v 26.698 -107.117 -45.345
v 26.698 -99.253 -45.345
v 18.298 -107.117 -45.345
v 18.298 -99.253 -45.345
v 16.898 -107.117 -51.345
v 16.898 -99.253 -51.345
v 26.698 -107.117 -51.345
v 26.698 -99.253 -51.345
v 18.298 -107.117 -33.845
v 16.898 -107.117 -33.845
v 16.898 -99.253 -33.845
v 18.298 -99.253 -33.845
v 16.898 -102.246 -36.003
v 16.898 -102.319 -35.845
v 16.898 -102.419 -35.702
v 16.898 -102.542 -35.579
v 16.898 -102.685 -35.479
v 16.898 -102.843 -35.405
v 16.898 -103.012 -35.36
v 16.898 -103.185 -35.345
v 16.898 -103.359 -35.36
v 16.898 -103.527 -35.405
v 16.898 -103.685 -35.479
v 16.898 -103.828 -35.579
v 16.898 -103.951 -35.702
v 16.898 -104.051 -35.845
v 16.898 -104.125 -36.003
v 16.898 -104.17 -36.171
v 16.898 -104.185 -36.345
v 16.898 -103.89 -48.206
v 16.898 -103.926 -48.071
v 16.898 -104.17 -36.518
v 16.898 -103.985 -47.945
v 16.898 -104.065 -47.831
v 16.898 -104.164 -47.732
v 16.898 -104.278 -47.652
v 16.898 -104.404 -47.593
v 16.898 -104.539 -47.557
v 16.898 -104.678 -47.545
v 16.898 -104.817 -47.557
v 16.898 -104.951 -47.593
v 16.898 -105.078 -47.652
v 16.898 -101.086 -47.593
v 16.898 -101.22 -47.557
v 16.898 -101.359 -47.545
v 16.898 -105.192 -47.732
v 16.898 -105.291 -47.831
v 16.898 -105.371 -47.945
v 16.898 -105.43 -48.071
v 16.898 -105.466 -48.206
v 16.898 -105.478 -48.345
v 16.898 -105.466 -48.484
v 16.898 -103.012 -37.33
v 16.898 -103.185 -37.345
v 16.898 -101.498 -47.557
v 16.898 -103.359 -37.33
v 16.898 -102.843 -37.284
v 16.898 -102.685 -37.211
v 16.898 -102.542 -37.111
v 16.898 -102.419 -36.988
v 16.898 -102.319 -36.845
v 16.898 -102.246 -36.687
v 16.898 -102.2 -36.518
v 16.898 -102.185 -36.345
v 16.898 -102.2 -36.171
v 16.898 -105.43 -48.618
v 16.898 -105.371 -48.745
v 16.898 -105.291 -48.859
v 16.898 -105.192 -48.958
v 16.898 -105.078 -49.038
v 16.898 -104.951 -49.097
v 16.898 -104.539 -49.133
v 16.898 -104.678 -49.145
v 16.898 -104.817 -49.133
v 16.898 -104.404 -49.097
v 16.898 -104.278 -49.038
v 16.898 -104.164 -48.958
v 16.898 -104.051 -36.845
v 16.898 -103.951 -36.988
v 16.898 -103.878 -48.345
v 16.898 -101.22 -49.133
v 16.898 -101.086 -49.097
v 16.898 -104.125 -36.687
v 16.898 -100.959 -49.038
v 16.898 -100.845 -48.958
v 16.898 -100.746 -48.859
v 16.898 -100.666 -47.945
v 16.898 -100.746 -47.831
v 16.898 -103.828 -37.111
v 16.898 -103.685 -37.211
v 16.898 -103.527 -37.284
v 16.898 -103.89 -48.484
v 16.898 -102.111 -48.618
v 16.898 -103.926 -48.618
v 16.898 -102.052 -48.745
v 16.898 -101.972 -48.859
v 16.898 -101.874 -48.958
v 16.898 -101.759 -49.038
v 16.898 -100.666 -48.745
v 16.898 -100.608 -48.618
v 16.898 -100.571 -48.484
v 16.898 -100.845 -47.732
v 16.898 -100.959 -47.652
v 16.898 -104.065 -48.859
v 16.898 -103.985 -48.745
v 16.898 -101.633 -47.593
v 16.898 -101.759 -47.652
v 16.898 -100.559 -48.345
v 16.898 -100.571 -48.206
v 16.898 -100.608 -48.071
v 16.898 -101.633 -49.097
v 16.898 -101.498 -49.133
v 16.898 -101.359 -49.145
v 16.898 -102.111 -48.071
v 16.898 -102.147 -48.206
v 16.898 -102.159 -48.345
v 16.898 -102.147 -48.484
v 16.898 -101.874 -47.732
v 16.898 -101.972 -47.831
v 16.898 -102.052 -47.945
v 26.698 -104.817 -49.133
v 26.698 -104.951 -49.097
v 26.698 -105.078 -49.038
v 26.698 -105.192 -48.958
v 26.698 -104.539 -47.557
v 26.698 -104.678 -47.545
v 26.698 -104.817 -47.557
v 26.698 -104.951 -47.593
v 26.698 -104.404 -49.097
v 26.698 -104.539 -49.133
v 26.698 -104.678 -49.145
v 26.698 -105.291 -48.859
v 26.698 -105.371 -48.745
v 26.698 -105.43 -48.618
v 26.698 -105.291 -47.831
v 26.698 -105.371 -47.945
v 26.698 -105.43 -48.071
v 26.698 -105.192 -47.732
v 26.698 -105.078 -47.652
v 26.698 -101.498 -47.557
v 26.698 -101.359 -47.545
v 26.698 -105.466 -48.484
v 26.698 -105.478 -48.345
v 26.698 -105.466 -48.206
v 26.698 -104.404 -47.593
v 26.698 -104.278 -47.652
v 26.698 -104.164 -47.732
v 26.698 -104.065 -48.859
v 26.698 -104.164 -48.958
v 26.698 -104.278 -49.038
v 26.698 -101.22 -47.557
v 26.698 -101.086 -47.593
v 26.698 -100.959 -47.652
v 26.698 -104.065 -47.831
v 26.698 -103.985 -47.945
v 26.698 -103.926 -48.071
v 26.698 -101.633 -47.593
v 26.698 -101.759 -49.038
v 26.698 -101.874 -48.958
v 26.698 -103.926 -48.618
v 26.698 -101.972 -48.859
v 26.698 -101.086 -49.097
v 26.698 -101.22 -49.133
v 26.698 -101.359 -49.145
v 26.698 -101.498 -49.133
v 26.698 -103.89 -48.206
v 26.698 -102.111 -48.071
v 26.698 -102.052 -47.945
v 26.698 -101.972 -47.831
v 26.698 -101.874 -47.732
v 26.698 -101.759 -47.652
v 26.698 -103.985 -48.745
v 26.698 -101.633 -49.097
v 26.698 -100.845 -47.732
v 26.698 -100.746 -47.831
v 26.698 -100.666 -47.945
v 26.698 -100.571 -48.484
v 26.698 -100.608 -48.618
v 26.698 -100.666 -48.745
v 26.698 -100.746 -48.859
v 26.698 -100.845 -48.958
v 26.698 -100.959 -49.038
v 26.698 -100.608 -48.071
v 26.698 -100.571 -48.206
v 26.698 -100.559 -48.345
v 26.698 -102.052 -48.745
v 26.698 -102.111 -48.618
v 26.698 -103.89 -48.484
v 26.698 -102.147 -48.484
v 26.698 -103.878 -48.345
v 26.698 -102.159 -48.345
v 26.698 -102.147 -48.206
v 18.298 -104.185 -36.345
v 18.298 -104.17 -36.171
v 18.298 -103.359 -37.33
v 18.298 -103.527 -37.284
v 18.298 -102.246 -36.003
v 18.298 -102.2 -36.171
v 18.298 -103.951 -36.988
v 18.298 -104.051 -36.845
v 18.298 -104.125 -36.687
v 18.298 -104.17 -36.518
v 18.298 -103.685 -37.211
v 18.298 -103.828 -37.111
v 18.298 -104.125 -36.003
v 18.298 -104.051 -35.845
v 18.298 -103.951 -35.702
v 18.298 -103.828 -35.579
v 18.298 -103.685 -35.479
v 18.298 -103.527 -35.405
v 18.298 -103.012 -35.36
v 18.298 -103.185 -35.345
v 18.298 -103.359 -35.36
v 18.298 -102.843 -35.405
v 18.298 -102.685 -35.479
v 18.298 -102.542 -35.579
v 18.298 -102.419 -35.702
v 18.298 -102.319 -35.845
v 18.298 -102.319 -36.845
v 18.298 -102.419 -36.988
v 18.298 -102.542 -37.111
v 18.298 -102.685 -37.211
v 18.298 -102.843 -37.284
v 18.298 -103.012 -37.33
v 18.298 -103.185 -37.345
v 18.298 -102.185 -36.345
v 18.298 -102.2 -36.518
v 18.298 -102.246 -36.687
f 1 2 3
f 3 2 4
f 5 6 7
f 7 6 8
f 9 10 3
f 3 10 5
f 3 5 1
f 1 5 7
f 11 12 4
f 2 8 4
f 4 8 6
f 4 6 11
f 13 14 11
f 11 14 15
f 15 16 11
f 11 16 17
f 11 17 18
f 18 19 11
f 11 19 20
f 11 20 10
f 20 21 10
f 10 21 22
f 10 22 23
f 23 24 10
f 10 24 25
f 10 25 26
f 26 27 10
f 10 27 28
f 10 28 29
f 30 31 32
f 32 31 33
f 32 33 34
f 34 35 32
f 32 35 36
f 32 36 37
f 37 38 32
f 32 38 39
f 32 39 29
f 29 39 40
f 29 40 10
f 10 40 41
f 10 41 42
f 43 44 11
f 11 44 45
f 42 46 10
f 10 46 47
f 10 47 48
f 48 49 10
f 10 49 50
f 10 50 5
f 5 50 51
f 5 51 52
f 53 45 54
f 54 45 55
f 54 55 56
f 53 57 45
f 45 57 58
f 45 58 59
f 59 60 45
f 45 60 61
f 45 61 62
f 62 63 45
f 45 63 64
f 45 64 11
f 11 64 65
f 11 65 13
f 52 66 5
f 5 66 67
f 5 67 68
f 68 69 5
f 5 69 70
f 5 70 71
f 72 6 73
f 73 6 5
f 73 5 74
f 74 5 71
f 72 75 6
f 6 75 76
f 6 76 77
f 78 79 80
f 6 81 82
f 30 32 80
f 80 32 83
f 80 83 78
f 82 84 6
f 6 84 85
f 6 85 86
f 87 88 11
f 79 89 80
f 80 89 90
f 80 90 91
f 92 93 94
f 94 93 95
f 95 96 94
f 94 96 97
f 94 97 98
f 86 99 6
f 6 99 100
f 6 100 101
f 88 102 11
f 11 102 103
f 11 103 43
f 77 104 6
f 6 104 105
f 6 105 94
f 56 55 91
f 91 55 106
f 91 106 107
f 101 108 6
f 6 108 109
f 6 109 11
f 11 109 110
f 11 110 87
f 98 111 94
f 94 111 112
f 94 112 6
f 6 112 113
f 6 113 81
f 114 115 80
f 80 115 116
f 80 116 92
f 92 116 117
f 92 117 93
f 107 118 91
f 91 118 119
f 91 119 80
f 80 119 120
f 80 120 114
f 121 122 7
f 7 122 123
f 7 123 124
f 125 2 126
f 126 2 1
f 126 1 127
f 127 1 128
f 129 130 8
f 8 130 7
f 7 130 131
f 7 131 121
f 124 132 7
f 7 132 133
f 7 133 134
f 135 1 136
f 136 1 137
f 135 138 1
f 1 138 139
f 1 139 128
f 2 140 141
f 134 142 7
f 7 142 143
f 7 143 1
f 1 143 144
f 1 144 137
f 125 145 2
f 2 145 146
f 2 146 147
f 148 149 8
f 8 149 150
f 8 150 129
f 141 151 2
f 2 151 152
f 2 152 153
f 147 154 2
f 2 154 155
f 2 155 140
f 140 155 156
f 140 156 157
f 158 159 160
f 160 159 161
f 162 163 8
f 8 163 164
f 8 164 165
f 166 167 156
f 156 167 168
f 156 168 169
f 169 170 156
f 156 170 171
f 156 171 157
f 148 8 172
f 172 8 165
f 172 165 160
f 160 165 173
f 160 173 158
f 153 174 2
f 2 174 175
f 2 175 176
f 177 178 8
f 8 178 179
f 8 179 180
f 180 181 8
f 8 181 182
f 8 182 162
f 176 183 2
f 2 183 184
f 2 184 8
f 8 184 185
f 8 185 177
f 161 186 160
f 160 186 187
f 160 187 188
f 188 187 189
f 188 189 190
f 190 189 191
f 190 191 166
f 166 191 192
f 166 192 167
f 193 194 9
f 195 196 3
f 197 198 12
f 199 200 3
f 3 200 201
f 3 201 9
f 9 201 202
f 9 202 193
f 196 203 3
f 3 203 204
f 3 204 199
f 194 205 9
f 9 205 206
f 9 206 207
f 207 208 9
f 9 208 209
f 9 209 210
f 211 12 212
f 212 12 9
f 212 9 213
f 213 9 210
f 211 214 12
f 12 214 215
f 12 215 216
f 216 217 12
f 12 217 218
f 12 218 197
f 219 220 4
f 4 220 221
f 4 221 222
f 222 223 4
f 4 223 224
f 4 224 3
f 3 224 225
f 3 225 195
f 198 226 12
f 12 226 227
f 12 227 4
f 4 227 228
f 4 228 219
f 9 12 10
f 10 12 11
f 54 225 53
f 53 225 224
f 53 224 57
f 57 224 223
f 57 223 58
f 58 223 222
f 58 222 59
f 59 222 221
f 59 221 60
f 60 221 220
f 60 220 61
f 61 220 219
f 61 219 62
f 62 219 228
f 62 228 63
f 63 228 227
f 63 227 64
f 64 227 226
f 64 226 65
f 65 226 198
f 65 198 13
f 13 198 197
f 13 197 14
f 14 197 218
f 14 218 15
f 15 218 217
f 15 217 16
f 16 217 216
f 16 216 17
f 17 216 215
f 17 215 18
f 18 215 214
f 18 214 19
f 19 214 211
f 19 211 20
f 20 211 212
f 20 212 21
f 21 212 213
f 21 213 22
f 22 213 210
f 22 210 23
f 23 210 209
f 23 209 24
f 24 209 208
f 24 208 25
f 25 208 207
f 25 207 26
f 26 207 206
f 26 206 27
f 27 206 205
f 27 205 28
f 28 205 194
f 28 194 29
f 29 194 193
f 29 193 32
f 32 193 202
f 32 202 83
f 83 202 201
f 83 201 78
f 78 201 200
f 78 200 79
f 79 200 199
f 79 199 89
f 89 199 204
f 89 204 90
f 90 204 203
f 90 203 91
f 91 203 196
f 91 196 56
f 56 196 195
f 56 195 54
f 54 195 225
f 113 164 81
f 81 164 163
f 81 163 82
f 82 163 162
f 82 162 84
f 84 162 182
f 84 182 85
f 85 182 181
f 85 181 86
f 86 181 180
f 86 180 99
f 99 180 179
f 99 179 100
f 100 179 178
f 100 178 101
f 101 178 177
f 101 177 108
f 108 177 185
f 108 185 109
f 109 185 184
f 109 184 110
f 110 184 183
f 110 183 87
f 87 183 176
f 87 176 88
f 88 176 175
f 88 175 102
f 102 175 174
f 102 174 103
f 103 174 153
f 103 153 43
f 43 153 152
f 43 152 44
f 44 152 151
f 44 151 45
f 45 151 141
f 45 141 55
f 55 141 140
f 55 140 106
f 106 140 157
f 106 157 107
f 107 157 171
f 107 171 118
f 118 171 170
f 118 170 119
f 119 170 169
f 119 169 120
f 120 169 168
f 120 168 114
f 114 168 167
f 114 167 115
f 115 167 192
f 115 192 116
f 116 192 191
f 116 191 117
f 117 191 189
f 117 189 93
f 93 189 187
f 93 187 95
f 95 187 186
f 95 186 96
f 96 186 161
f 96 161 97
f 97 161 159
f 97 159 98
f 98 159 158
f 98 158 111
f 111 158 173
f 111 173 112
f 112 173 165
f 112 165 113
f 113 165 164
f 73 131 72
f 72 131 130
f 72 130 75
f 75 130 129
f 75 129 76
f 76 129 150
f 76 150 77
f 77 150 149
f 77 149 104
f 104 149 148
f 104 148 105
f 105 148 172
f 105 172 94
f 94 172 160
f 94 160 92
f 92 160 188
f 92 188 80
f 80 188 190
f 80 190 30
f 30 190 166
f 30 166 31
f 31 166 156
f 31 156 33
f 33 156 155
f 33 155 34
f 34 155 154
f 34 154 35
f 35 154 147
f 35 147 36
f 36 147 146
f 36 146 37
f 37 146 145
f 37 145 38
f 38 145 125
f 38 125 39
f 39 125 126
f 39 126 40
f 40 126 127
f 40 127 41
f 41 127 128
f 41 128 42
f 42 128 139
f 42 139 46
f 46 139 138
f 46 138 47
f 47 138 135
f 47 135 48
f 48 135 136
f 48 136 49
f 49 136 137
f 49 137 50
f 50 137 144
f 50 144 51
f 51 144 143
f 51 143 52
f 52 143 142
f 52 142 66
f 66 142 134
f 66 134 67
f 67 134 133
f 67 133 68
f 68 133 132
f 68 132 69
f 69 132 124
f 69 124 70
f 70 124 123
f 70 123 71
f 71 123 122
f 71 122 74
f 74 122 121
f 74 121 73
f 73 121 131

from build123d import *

# Parameters (mm, degrees)
CROQUIS1_W                = 6
CROQUIS1_H                = 7.864261992
SALIENTE_EXTRUIR1_DEPTH   = 9.8
CROQUIS2_W                = 1.4
CROQUIS2_H                = 7.864261992
SALIENTE_EXTRUIR2_DEPTH   = 11.5
CROQUIS3_R                = 1
CORTAR_EXTRUIR1_DEPTH     = 1.4
TALADRO_ROSCADO_M21_D     = 1.6
TALADRO_ROSCADO_M21_DEPTH = 13
TALADRO_ROSCADO_M21_TIP   = 0.480688495


with BuildPart() as part:
    # Croquis1 → Saliente-Extruir1 (new body)
    with BuildSketch(Plane.ZY.offset(-26.697955236)):
        with Locations((-48.344788292, -103.185244075)):
            Rectangle(CROQUIS1_W, CROQUIS1_H)
    extrude(amount=SALIENTE_EXTRUIR1_DEPTH)

    # Croquis2 → Saliente-Extruir2 (add)
    with BuildSketch(Plane.XY.offset(-45.344788292)):
        with Locations((17.597955236, -103.185244075)):
            Rectangle(CROQUIS2_W, CROQUIS2_H)
    extrude(amount=SALIENTE_EXTRUIR2_DEPTH)

    # Croquis3 → Cortar-Extruir1 (cut)
    with BuildSketch(Plane(origin=(18.297955236, 0, 0), x_dir=(0, 0, -1), z_dir=(1, 0, 0))):
        with Locations((36.344788292, -103.185244075)):
            Circle(CROQUIS3_R)
    extrude(amount=-CORTAR_EXTRUIR1_DEPTH, mode=Mode.SUBTRACT)

    # Taladro roscado M21
    with Locations(Plane(origin=(26.697955236, 0, 0), x_dir=(0, 0, -1), z_dir=(1, 0, 0))):
        with Locations((48.344788292, -104.677829932), (48.344788292, -101.359309211)):
            Hole(TALADRO_ROSCADO_M21_D / 2, depth=TALADRO_ROSCADO_M21_DEPTH)
            with Locations((0, 0, -(TALADRO_ROSCADO_M21_DEPTH + TALADRO_ROSCADO_M21_TIP / 2))):  # 118° drill point
                Cone(0, TALADRO_ROSCADO_M21_D / 2, TALADRO_ROSCADO_M21_TIP, mode=Mode.SUBTRACT)


solid = part.part
